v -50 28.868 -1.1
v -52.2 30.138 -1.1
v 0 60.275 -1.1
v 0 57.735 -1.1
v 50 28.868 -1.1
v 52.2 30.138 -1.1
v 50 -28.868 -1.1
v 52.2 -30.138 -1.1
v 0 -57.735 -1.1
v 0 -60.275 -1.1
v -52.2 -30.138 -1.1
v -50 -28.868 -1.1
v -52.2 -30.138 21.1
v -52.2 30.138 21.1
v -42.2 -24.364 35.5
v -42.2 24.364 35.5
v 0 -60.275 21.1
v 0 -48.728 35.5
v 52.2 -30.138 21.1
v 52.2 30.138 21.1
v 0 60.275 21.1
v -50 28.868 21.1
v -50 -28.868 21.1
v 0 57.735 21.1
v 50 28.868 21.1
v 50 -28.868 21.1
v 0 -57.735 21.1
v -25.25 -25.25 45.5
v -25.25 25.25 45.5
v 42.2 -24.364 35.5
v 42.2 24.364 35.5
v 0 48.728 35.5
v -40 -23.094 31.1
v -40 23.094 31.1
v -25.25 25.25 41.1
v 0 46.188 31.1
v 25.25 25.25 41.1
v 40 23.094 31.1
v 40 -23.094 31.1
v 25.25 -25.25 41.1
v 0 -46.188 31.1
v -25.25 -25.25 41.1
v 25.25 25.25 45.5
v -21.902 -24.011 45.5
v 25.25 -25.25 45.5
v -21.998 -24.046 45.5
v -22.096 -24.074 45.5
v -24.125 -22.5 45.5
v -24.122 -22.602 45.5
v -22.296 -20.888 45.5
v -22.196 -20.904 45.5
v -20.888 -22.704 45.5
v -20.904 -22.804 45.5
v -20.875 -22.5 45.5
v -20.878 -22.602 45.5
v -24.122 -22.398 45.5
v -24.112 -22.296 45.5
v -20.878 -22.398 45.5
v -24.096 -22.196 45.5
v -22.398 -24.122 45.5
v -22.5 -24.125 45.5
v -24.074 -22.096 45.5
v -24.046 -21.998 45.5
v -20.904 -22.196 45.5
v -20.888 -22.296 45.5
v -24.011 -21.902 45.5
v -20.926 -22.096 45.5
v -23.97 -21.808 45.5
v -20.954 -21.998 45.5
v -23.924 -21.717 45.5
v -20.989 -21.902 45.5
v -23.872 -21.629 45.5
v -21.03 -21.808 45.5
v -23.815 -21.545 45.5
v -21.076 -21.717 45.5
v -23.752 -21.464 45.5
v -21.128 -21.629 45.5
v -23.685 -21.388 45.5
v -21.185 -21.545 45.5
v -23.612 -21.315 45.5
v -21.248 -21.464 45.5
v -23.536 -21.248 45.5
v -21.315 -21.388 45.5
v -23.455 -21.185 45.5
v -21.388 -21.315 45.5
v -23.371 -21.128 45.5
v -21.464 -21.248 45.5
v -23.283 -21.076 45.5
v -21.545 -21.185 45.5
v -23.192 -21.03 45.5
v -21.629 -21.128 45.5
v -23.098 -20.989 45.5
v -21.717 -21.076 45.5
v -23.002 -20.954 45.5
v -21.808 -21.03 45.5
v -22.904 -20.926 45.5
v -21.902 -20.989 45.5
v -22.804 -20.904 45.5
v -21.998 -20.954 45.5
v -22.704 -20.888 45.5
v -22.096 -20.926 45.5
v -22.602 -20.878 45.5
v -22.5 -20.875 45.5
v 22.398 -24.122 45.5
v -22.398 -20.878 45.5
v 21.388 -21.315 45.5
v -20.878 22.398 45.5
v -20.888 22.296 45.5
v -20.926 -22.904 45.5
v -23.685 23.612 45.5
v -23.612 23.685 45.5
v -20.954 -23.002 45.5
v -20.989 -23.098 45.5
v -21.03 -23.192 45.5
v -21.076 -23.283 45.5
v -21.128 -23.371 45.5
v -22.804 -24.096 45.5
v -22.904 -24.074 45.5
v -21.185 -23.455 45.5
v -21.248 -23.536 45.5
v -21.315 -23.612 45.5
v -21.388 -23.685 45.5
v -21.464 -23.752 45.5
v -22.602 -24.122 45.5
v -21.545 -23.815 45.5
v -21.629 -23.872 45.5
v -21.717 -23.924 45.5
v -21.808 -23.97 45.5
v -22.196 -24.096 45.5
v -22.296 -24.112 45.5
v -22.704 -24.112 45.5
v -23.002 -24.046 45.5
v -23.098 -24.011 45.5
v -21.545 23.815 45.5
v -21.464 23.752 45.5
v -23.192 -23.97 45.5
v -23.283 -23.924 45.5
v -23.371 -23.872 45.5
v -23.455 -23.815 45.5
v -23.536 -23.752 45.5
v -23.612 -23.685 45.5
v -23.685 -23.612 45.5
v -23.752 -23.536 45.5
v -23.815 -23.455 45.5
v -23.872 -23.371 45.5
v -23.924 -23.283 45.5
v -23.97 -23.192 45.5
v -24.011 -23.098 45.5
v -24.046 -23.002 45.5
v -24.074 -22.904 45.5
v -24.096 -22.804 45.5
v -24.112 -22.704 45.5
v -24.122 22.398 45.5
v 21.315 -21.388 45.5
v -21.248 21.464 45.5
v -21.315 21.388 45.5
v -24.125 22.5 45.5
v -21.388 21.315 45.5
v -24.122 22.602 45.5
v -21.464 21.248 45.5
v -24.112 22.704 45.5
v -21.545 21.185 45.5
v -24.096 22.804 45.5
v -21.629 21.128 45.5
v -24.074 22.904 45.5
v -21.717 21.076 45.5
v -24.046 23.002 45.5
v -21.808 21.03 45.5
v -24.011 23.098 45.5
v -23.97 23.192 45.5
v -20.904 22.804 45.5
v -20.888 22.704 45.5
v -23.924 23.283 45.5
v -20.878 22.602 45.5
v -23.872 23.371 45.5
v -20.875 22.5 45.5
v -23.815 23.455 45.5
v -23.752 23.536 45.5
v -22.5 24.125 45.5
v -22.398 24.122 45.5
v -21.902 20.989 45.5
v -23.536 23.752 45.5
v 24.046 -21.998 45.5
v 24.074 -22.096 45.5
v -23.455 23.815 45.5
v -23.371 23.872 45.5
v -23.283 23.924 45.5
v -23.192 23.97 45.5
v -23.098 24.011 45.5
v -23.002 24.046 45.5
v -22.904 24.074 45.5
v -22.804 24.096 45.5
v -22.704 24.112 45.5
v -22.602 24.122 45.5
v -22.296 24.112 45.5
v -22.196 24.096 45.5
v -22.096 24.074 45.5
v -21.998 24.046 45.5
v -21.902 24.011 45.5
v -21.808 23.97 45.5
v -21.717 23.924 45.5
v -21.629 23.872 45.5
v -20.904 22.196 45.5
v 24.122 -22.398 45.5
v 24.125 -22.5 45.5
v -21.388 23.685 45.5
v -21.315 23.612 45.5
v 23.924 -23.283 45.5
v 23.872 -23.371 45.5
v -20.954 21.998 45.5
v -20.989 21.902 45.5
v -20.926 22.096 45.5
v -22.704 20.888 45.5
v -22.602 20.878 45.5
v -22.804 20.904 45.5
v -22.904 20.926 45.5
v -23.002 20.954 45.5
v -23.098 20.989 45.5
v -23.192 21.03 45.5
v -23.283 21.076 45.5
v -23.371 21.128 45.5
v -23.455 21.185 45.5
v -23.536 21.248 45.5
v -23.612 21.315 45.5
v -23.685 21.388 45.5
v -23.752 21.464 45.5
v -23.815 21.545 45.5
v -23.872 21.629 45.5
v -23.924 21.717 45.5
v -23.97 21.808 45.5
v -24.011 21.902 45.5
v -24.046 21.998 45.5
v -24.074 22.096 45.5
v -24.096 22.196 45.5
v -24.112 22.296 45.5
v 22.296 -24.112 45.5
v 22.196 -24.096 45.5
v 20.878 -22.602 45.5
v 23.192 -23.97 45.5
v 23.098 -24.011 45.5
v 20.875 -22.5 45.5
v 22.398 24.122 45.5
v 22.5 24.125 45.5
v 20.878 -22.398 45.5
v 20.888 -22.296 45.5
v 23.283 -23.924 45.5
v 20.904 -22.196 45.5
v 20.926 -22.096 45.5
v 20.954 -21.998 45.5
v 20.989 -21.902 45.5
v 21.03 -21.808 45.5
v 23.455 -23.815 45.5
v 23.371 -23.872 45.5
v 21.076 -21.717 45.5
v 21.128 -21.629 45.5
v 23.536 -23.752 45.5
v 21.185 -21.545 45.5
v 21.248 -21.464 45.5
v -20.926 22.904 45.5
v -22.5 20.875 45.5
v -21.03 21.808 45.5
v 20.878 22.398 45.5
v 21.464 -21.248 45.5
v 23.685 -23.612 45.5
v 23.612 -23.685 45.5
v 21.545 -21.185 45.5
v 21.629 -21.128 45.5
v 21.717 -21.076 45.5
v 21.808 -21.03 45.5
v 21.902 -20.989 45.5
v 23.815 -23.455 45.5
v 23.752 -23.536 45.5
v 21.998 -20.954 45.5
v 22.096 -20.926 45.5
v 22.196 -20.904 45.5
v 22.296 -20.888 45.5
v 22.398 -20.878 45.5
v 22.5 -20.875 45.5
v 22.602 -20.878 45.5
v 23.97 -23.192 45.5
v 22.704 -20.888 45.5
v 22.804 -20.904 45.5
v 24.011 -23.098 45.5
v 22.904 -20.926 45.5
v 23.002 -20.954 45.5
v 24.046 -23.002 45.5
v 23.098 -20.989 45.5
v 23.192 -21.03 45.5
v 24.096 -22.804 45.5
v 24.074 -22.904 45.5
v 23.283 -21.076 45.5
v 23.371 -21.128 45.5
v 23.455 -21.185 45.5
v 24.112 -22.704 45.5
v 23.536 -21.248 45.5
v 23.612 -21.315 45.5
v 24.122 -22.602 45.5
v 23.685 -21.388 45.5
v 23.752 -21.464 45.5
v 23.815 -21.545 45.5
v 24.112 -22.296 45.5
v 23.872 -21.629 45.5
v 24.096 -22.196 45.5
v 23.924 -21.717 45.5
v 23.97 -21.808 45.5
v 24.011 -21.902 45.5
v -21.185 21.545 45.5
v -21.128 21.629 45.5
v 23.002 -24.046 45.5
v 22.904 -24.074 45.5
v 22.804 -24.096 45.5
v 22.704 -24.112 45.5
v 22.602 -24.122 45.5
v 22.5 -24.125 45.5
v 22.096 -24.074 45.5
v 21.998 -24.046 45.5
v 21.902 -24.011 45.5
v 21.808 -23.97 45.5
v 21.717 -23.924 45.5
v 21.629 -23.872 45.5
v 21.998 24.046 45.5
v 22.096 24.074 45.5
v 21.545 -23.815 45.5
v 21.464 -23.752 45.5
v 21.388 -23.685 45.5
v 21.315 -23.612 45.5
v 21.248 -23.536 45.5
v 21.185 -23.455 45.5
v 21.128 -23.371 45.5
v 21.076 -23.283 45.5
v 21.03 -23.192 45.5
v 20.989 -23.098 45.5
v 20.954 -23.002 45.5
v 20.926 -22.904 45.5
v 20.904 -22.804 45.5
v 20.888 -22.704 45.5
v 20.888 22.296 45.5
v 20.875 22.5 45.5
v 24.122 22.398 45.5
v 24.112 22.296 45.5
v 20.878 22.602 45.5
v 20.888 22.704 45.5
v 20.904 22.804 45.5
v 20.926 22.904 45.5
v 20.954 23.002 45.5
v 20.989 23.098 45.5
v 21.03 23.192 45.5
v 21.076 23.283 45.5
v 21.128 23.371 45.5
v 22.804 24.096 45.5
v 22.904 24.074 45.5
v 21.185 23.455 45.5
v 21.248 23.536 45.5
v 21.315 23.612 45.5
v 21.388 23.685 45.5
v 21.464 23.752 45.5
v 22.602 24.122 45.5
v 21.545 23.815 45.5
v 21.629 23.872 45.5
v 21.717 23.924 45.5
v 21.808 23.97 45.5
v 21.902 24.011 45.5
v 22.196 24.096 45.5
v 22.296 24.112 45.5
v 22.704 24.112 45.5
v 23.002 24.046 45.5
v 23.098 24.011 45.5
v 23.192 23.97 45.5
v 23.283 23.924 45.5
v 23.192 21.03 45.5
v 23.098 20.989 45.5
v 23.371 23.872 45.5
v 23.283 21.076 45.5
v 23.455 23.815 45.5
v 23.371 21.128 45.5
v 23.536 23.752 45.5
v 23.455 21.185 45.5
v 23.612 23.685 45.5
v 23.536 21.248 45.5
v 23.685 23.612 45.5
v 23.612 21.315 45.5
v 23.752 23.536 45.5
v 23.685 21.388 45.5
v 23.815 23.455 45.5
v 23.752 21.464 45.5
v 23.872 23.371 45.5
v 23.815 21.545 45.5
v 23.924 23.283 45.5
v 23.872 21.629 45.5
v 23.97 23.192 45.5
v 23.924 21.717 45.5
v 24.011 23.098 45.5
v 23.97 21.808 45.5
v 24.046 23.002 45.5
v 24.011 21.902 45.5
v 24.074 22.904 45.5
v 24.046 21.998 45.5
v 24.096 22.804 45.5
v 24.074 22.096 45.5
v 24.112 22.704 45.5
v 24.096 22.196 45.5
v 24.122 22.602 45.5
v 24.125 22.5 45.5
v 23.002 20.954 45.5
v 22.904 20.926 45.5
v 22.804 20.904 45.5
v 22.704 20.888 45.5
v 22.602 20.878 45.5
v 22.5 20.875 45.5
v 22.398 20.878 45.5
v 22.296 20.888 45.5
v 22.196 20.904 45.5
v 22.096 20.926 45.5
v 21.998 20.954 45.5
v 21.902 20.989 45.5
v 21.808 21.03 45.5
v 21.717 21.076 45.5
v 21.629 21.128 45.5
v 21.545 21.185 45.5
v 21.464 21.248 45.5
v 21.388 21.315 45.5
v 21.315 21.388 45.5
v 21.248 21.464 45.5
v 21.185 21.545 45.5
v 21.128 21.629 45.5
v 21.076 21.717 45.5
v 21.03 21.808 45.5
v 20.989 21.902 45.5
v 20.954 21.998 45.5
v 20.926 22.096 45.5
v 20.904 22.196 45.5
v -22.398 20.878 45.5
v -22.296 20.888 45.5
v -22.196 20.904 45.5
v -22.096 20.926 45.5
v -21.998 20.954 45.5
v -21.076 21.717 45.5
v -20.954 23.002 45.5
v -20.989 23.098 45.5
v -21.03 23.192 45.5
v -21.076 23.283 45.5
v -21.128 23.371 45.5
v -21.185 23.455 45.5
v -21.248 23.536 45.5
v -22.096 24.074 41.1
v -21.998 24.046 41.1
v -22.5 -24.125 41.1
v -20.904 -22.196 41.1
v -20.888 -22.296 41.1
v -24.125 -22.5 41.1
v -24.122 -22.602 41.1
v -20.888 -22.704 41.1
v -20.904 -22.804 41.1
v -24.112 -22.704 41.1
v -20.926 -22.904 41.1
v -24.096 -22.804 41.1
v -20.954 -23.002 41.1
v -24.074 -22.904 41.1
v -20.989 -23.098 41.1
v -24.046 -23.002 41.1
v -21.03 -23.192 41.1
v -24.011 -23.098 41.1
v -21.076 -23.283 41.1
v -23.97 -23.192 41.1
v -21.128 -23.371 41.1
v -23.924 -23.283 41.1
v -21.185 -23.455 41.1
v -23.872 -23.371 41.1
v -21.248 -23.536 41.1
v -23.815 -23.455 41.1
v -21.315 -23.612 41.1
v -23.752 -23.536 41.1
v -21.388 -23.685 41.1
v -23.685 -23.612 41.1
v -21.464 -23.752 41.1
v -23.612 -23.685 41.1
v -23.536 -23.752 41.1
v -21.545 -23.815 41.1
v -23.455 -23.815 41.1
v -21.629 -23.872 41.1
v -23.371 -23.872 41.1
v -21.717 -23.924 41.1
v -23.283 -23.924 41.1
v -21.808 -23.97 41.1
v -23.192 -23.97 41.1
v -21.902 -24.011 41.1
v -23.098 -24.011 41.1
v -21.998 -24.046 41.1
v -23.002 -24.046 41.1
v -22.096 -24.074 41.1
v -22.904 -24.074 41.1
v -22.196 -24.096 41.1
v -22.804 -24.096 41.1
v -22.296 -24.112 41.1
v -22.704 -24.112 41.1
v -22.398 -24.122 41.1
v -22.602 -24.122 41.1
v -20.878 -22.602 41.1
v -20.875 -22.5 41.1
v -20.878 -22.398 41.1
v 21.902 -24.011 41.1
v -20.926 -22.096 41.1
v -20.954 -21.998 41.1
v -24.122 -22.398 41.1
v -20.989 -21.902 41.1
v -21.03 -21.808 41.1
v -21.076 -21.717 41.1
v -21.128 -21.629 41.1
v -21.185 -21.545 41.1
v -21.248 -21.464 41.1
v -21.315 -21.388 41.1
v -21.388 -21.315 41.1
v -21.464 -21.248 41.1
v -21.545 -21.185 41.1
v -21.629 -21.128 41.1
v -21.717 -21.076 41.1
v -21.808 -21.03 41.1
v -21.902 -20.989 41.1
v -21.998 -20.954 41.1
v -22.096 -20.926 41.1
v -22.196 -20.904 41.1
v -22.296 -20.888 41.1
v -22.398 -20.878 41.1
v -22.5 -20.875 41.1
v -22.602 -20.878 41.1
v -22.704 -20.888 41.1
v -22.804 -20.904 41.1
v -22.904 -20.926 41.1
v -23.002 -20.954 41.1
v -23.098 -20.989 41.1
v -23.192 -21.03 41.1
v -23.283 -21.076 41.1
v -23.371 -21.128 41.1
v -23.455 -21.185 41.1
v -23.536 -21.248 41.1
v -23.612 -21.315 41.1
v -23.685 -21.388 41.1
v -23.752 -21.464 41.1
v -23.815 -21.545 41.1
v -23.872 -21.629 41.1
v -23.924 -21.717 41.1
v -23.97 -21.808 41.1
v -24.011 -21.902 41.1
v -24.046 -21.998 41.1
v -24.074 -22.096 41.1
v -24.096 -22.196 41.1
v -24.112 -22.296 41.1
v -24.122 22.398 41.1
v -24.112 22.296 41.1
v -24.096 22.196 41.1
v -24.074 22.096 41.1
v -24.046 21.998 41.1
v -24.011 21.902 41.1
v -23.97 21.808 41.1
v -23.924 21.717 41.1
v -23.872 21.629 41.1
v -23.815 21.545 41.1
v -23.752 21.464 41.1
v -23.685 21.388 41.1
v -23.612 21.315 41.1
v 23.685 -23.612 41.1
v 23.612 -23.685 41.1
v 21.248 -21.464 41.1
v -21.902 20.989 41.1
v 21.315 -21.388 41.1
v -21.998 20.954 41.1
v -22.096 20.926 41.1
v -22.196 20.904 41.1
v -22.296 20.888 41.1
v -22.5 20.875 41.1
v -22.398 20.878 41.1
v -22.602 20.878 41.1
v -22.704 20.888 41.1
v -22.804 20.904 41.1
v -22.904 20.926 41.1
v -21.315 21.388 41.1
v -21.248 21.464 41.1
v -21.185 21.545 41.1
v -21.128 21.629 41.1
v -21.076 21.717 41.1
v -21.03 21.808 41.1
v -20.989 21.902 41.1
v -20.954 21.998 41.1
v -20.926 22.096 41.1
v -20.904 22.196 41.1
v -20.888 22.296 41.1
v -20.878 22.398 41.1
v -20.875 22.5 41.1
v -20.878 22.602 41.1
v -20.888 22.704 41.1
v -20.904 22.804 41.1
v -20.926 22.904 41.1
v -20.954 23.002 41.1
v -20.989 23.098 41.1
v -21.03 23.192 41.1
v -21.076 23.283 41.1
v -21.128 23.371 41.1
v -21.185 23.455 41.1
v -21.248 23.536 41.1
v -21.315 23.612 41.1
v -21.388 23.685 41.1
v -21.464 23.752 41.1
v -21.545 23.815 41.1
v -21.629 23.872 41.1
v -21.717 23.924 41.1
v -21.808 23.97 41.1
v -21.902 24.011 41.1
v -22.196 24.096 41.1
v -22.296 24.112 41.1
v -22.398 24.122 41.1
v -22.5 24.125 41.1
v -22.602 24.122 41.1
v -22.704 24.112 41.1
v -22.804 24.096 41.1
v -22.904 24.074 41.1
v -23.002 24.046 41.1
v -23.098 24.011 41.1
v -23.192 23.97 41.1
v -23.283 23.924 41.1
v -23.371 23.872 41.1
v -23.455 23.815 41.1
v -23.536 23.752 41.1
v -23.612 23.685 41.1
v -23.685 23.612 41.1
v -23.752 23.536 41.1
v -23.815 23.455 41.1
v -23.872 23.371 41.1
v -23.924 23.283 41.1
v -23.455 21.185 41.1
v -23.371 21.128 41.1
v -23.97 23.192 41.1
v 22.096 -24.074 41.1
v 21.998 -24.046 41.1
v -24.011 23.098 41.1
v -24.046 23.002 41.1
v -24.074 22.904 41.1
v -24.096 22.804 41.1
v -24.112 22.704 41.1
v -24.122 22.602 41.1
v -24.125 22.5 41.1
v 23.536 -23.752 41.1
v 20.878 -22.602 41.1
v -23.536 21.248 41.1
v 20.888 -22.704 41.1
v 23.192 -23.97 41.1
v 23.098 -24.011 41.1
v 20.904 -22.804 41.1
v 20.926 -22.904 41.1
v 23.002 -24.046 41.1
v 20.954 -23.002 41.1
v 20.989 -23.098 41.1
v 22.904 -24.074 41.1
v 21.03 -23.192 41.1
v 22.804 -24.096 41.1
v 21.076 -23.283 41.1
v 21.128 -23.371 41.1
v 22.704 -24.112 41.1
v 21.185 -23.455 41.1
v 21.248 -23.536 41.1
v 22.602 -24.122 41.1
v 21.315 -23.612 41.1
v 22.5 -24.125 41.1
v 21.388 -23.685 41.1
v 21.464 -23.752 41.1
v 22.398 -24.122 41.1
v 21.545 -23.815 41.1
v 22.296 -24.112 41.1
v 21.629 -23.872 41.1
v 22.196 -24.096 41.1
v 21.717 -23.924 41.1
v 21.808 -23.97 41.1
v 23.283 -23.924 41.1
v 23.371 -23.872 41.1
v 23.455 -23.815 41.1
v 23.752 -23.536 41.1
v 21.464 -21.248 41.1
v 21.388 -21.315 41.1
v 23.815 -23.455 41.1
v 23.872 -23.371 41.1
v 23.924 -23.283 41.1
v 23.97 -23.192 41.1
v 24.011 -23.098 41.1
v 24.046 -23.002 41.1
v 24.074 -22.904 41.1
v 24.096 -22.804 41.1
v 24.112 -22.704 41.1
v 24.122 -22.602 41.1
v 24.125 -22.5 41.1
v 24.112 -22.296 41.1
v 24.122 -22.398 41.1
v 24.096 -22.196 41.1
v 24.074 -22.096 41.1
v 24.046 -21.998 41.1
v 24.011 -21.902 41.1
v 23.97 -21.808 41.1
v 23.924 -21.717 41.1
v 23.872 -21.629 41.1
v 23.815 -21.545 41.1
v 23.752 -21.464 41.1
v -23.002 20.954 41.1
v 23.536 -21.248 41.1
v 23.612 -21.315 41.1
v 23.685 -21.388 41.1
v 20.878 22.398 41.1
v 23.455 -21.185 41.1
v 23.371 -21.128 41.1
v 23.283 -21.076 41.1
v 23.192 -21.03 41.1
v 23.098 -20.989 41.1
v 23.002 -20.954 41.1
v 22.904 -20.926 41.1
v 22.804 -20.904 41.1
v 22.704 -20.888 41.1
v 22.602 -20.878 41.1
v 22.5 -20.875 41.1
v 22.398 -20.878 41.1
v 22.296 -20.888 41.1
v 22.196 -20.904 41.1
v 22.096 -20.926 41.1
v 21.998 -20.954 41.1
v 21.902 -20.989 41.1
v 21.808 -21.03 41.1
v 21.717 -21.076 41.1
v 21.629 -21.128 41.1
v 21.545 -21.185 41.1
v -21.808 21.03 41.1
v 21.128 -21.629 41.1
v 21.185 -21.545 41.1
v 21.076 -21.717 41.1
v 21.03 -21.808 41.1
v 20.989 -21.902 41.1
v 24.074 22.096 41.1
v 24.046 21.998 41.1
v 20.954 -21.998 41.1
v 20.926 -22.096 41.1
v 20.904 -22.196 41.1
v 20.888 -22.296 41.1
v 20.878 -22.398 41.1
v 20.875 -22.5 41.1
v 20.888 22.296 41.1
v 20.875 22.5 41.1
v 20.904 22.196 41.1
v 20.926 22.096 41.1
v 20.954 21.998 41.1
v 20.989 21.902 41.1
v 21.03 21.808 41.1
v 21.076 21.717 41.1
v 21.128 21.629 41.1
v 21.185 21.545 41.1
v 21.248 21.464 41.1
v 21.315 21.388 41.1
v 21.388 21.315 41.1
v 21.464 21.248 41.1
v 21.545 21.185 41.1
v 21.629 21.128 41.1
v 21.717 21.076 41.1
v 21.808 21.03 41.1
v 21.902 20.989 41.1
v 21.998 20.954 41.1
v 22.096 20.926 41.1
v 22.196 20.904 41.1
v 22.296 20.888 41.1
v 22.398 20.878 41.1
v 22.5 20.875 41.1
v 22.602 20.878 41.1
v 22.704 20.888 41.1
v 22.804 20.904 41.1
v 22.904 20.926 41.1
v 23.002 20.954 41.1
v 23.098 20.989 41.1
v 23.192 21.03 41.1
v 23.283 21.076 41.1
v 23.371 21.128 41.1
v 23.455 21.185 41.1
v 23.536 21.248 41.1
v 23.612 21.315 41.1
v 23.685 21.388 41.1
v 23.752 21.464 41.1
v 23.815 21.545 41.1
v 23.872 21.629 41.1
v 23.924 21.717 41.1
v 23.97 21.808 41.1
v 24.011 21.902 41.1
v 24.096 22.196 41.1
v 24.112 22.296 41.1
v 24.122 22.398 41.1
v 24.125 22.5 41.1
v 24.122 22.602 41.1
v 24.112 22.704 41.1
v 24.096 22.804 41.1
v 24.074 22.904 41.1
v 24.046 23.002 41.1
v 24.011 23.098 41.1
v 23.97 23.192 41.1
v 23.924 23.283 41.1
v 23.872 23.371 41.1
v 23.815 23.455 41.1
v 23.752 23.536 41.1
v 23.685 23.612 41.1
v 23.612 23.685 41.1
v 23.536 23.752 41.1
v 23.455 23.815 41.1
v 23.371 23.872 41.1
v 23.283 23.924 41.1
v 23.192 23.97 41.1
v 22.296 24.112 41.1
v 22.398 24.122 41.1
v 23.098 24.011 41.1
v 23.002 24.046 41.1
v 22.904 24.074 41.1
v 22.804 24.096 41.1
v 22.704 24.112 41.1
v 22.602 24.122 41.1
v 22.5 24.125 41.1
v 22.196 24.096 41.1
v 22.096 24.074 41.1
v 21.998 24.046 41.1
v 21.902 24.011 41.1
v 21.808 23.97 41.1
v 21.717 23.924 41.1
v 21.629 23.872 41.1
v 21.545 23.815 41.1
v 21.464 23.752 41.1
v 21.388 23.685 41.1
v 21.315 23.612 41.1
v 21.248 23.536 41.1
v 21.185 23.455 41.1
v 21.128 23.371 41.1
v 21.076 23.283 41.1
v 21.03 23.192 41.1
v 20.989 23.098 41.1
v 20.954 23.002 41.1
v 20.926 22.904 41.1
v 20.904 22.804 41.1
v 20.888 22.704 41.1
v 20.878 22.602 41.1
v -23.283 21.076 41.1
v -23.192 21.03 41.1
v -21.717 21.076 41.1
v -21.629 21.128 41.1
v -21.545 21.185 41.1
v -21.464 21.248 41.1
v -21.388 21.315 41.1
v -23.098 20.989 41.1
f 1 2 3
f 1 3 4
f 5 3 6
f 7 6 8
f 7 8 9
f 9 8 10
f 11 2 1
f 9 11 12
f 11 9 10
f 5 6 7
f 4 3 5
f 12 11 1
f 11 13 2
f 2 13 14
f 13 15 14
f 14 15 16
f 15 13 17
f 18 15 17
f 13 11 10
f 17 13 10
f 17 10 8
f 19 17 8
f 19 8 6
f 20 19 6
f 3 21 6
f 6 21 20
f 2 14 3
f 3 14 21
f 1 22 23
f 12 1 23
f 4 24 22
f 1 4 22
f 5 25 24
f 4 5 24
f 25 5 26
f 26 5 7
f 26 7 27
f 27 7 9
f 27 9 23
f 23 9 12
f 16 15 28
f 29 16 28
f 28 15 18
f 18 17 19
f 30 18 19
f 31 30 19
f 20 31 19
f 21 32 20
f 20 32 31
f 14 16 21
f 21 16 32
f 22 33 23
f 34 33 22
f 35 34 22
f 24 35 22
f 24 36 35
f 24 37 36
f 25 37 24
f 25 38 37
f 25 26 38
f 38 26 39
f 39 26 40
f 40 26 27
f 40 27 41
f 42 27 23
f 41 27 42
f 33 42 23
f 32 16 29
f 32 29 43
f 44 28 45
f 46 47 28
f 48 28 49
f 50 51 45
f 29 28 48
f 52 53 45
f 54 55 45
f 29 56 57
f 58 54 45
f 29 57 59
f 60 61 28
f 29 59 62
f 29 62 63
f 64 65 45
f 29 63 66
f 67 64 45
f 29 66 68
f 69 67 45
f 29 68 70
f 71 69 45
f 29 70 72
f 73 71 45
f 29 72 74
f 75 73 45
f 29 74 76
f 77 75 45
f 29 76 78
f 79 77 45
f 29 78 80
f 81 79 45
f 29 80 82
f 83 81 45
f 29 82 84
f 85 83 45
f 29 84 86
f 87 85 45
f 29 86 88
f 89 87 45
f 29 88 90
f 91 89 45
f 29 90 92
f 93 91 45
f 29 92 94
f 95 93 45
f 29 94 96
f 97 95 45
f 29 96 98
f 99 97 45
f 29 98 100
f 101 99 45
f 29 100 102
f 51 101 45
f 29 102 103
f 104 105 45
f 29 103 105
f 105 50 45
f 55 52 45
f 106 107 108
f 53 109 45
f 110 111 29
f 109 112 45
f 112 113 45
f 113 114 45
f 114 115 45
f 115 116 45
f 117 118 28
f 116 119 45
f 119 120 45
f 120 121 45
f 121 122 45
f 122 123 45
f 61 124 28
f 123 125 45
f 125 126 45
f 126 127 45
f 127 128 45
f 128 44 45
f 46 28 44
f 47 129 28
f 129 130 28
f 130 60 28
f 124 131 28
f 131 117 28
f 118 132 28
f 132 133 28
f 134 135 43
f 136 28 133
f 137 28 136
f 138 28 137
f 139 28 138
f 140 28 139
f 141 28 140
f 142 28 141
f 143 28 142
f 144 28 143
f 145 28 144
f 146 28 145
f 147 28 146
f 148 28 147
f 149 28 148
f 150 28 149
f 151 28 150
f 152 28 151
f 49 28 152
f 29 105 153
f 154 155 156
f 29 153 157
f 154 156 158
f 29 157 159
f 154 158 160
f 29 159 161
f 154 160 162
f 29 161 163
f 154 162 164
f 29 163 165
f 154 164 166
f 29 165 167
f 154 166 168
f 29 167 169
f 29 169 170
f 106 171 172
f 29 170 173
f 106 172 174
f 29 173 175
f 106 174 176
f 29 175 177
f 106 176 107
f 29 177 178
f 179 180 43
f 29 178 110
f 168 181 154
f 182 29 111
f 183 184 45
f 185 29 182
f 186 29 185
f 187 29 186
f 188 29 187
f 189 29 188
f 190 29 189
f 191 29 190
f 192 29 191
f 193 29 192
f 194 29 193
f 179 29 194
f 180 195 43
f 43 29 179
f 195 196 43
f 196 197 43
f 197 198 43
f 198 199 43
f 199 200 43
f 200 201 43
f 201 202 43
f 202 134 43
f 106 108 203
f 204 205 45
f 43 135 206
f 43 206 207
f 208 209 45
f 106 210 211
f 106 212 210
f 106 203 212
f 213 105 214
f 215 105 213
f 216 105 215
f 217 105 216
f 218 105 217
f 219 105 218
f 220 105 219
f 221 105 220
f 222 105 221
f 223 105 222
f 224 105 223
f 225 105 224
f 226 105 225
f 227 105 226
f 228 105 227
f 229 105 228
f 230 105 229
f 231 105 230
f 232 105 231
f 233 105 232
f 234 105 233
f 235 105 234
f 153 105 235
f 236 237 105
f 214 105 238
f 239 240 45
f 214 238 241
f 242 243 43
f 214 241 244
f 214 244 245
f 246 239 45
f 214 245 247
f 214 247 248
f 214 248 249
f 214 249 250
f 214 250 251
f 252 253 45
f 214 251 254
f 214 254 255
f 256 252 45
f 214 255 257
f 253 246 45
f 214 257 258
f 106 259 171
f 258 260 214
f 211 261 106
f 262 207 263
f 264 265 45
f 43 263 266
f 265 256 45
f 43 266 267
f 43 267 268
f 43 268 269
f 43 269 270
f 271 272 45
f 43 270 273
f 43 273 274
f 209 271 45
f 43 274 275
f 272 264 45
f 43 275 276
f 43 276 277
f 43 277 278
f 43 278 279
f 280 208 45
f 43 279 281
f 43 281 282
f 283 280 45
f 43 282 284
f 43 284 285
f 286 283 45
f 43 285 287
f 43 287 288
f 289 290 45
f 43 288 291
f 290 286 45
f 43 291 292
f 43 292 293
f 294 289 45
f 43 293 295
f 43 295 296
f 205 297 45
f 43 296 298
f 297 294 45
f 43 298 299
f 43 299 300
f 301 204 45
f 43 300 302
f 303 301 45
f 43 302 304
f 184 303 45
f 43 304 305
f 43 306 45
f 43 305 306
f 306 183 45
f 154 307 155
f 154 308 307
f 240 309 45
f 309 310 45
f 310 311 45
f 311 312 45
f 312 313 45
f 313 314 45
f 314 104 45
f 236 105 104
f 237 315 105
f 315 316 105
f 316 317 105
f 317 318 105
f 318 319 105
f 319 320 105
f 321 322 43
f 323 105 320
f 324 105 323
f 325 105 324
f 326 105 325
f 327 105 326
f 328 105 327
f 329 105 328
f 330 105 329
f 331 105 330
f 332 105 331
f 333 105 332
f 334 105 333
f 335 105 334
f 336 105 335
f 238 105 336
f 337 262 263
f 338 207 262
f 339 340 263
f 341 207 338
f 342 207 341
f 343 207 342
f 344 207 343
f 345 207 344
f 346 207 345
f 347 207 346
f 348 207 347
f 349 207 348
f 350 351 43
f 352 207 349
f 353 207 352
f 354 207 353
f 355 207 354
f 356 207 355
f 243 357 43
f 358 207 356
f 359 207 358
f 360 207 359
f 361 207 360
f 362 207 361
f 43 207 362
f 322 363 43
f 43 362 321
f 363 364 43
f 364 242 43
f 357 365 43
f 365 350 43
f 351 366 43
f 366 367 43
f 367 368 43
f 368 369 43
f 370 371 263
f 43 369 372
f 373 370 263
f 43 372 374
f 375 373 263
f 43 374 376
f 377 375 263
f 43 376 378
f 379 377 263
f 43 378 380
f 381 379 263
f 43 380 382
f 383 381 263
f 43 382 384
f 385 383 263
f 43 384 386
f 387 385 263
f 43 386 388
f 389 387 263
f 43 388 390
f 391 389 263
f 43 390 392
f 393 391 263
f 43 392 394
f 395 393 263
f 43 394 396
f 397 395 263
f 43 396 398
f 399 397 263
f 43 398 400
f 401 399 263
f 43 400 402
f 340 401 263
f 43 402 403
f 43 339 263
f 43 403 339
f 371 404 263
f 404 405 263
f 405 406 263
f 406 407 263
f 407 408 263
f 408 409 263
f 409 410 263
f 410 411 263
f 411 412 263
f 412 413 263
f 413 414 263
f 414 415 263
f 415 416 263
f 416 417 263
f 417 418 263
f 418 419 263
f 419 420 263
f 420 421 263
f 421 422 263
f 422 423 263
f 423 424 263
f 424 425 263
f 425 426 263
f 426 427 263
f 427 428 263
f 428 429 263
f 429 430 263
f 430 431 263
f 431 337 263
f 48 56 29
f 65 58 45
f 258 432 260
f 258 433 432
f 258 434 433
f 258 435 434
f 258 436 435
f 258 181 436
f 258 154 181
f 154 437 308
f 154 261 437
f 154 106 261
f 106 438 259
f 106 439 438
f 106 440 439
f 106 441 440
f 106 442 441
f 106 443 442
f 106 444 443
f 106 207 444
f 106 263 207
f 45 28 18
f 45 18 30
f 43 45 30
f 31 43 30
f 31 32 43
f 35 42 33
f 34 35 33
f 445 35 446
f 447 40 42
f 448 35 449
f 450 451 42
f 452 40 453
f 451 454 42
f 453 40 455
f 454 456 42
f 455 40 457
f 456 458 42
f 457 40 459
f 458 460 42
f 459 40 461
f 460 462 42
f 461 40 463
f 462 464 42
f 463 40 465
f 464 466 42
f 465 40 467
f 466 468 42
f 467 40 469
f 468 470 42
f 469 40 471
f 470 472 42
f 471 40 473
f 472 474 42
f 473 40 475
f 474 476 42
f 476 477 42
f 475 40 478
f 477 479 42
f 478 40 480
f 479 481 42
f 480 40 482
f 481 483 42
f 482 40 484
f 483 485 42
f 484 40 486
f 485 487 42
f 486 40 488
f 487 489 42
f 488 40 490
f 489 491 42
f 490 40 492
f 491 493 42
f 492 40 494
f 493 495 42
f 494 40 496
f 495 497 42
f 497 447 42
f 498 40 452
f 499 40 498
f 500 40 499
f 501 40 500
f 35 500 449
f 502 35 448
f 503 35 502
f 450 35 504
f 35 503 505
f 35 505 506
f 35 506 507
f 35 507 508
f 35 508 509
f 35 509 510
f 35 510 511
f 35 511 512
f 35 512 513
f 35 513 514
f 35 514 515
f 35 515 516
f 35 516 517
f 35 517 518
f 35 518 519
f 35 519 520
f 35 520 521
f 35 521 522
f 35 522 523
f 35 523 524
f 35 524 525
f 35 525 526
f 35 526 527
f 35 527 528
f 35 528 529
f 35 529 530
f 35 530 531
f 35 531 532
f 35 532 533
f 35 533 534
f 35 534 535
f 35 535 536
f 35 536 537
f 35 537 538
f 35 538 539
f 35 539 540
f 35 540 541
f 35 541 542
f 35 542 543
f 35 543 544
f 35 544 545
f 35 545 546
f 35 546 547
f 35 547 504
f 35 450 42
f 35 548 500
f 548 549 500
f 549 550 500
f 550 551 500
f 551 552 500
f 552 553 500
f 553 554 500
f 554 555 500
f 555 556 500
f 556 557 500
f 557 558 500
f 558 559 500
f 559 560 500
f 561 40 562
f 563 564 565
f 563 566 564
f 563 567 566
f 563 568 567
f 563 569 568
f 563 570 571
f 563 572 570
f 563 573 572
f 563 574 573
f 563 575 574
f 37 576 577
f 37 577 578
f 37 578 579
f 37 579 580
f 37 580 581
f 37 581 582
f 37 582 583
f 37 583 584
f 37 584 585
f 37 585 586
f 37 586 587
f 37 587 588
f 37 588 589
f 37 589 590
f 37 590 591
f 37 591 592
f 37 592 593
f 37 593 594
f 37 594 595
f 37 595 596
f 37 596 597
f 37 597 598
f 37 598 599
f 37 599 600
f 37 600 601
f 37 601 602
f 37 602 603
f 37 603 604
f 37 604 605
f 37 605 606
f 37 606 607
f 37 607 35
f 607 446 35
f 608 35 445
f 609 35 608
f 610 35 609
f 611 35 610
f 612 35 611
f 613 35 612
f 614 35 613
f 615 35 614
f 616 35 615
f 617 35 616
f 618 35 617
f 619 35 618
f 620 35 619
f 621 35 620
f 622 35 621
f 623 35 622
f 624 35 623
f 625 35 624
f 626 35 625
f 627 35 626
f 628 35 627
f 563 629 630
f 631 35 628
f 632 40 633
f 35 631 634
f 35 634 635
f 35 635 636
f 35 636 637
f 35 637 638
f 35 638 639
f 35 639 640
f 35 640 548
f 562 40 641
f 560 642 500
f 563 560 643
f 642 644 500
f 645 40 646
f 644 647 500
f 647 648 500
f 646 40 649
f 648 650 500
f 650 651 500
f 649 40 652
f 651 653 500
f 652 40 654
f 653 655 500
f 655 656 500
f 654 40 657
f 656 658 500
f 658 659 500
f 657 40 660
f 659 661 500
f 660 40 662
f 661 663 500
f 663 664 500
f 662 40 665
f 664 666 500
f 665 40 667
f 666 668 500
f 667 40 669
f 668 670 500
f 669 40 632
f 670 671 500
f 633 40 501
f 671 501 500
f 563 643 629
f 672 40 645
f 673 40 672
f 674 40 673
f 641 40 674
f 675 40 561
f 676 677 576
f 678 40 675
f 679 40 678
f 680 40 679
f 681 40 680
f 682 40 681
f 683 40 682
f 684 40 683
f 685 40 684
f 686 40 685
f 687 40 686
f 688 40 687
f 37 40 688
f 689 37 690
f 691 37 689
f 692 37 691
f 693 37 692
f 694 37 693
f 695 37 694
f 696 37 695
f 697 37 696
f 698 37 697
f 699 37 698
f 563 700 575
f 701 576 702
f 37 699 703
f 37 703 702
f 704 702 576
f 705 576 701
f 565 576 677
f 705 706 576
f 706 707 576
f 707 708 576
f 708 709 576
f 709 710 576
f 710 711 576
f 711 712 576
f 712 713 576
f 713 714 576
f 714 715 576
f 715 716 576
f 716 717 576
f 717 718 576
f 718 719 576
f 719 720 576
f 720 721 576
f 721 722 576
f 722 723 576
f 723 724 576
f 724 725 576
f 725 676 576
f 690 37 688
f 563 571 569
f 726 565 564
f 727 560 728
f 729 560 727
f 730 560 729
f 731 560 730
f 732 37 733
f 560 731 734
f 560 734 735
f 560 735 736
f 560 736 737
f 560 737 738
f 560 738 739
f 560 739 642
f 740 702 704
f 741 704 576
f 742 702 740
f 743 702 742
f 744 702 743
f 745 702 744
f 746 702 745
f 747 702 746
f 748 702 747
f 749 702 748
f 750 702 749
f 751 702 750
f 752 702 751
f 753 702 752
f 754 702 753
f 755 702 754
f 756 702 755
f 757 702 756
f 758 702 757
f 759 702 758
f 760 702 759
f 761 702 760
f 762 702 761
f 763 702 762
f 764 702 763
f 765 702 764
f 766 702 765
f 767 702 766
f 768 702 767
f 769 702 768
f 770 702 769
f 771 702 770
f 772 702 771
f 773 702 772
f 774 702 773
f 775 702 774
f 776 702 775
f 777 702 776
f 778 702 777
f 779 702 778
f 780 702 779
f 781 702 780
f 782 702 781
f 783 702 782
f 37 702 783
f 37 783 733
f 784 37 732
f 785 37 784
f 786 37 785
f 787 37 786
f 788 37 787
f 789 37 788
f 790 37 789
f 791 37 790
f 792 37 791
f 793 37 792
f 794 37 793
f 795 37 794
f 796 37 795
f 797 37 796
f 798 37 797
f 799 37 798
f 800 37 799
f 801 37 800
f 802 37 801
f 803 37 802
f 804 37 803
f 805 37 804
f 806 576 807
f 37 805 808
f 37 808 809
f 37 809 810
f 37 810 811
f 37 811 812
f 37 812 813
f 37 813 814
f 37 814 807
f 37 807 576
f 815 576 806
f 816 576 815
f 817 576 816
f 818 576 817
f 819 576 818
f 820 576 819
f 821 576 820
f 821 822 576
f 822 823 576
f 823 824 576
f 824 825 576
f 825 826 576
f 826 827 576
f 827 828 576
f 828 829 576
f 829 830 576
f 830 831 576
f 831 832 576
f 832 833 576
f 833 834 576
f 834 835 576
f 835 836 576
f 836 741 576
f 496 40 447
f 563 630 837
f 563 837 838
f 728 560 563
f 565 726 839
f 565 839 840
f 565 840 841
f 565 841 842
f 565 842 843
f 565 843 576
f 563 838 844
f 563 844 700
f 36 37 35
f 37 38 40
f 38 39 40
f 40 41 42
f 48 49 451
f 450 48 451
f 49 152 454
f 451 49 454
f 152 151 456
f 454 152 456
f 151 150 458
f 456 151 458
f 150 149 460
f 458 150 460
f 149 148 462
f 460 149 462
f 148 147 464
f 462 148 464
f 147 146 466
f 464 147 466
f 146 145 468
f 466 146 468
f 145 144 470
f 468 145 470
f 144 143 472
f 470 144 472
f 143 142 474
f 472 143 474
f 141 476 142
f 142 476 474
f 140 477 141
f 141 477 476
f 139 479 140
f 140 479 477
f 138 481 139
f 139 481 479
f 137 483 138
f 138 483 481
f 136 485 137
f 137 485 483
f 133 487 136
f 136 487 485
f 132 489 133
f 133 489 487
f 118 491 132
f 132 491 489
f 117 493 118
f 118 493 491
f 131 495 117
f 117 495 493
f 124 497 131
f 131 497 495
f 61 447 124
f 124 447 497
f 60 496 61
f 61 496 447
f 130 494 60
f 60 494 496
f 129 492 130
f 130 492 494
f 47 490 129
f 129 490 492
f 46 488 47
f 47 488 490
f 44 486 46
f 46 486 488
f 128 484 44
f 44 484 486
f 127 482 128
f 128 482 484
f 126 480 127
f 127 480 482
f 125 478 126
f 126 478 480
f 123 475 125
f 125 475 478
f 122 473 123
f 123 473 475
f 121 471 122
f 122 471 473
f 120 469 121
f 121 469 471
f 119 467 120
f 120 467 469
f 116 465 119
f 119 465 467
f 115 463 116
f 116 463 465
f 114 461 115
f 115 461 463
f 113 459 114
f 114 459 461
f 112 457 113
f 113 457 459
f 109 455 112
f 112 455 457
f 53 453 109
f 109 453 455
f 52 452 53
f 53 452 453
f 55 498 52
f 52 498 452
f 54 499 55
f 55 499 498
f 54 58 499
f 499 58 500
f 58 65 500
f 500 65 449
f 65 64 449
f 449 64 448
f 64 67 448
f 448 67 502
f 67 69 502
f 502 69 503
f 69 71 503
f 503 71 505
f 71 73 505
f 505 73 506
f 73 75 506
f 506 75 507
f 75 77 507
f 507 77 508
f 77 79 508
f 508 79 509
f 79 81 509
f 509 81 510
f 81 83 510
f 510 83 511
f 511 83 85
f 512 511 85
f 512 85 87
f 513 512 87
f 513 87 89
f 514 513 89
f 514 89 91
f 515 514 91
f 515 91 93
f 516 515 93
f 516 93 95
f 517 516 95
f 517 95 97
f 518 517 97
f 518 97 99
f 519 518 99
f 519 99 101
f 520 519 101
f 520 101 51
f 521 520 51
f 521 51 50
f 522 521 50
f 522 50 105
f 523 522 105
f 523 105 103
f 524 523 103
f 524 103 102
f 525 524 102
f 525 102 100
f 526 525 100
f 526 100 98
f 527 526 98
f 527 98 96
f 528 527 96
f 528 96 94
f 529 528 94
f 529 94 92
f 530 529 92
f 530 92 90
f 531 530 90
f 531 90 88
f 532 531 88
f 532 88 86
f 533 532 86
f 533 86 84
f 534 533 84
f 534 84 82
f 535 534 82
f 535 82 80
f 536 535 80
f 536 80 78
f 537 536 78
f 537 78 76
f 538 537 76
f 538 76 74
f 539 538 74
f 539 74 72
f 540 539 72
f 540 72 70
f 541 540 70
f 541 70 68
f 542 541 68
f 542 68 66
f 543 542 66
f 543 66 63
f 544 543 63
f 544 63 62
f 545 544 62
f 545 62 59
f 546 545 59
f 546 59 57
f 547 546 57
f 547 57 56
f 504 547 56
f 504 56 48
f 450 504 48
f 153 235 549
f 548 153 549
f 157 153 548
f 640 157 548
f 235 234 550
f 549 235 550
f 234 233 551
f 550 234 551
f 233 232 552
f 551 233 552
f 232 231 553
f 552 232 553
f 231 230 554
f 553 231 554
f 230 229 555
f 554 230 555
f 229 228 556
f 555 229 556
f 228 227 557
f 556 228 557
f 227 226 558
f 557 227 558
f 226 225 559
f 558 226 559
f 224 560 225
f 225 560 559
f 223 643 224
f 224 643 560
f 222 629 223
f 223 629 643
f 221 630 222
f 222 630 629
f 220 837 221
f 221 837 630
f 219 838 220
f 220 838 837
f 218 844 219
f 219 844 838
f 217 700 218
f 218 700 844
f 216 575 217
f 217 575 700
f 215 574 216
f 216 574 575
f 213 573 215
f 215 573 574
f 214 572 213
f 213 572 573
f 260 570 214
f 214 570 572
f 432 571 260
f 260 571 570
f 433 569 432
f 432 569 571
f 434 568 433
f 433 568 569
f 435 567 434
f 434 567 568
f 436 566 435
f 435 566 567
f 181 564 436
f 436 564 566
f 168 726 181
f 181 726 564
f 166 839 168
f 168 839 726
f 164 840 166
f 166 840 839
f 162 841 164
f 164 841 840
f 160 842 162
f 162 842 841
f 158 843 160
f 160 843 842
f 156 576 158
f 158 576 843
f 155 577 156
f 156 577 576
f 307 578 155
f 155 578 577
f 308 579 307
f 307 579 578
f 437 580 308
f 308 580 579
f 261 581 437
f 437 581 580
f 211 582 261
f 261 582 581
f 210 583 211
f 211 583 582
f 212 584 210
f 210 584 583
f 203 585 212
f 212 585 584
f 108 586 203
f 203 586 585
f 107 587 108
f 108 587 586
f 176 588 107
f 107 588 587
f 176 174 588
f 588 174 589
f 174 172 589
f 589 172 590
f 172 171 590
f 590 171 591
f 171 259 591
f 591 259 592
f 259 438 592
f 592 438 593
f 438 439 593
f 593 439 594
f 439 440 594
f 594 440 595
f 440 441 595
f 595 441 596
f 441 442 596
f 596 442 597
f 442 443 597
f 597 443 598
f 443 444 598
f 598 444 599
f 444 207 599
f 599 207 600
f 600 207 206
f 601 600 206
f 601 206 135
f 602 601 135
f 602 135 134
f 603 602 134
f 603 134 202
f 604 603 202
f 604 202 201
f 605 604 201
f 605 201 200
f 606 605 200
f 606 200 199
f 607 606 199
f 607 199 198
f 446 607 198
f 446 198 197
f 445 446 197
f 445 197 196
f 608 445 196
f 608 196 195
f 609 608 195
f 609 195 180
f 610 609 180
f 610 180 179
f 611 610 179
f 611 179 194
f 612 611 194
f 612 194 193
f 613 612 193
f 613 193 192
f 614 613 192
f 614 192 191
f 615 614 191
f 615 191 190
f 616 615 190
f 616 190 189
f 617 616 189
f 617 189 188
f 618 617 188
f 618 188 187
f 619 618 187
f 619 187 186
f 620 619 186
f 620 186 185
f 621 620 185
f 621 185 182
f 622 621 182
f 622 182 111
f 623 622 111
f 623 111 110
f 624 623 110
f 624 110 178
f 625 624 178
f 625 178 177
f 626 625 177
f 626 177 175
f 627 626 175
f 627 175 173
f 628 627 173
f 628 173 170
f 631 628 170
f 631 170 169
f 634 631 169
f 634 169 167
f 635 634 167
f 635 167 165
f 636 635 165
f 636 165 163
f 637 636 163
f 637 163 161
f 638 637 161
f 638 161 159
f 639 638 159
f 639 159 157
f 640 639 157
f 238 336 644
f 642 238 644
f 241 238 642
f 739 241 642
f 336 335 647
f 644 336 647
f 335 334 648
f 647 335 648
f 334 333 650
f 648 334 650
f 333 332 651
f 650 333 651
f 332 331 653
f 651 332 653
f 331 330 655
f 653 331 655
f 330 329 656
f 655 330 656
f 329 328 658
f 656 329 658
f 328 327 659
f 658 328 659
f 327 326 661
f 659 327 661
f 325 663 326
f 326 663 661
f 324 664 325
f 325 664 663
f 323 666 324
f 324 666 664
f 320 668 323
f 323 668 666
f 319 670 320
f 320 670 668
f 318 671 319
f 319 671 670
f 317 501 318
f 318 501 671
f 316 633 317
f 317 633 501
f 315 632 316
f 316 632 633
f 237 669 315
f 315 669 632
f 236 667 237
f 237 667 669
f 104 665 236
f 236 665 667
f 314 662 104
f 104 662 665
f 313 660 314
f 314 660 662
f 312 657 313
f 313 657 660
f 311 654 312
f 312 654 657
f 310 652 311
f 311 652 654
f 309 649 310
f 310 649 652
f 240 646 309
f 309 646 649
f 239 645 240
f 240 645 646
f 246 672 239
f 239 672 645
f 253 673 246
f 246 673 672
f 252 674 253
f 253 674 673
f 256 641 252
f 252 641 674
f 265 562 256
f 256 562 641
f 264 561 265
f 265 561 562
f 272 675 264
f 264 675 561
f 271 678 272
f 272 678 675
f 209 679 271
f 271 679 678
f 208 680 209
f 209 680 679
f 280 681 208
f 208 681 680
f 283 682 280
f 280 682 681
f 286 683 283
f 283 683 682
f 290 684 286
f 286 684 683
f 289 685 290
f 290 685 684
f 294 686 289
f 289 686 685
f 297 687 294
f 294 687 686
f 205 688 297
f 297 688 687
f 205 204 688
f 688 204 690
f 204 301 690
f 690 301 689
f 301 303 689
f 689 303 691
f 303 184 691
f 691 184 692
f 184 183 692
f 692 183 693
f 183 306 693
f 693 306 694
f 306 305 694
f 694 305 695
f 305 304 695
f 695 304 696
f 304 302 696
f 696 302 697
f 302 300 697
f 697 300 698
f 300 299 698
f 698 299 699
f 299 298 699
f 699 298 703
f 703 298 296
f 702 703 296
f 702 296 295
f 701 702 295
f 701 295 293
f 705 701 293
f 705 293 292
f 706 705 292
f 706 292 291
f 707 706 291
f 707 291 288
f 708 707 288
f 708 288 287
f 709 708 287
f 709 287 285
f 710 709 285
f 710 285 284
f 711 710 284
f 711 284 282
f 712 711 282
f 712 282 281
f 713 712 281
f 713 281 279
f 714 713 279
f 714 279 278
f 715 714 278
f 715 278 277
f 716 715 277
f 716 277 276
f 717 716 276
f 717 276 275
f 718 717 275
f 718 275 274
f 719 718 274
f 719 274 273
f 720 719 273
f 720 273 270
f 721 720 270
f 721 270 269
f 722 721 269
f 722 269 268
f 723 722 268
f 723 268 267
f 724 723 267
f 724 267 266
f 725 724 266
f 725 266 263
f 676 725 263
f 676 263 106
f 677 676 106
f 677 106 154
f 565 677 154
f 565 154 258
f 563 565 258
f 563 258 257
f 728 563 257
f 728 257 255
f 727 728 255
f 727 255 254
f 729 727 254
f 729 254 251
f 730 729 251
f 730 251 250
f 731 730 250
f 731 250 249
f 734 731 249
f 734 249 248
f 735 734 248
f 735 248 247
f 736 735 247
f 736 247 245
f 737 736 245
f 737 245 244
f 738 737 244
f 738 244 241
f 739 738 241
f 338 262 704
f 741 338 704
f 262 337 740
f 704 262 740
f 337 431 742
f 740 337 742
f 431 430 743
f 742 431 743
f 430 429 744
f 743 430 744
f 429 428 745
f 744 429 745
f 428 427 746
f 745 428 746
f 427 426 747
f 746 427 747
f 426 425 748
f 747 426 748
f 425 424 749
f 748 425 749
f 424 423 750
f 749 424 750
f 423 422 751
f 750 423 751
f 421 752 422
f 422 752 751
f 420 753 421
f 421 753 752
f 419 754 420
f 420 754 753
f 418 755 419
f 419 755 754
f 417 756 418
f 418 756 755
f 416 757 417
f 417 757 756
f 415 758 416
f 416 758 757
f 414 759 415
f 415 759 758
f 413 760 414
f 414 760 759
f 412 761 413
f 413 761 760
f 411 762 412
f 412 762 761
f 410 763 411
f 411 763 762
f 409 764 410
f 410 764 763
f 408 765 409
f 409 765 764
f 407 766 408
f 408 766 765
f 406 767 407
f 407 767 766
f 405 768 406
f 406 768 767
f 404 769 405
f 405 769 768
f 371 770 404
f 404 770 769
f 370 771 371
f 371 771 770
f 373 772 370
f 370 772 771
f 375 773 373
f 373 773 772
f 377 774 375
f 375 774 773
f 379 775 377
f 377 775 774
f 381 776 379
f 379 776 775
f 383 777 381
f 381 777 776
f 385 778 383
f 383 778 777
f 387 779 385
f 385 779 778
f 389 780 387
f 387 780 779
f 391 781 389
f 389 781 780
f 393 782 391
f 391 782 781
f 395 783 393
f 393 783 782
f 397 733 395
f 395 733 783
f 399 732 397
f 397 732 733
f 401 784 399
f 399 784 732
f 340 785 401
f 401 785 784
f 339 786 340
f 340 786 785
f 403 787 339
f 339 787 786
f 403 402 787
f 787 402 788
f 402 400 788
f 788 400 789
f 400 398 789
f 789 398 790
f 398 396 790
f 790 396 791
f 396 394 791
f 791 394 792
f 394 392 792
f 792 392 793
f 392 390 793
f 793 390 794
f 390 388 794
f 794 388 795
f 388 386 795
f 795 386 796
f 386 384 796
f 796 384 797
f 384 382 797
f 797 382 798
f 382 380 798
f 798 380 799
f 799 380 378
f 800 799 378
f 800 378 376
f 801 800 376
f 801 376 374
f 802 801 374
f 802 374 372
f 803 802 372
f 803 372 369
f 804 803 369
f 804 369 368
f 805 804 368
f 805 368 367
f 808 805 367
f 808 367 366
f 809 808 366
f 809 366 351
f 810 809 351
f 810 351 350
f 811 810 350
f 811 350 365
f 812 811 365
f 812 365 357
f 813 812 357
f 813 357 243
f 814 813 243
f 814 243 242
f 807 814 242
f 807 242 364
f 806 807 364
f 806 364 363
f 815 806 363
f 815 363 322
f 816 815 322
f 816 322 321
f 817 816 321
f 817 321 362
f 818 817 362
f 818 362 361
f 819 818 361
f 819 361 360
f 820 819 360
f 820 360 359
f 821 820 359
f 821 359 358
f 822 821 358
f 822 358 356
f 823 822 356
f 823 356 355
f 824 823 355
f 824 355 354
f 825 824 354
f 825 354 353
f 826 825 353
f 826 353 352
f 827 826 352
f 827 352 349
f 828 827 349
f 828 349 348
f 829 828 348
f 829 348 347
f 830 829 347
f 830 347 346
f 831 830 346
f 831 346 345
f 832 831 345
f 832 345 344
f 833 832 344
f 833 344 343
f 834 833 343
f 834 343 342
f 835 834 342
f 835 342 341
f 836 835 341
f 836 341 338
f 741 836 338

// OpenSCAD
height = 28;
od = 14;
id = 9.6;
screwd = 1.3;
screwo = 9.4;
thickness = 2.2;
diameter=100;
$fn = 100;

gpssp = 45;
gpsmd = 3.25;
gpsw = 50.5;
apmw = 46;
apml = 72;
apmh = 14;

difference(){
	hull(){
		translate([0,0,40+(2*thickness)])
			cube([gpsw,gpsw,thickness], center=true);


		translate([0,0,30+(2*thickness)])
			hexagon(cle=diameter-20+(2*thickness), h=thickness);

		translate([0,0,20])
			hexagon(cle=diameter+(2*thickness), h=thickness);
	
		hexagon(cle=diameter+(2*thickness), h=thickness);
	}

	translate([0,0,40+thickness]){
		translate([45/2,45/2,0])
			cylinder(h=thickness*10, r=gpsmd/2, center=true);
		translate([-45/2,-45/2,0])
			cylinder(h=thickness*10, r=gpsmd/2, center=true);
		translate([-45/2,45/2,0])
			cylinder(h=thickness*10, r=gpsmd/2, center=true);
		translate([45/2,-45/2,0])
			cylinder(h=thickness*10, r=gpsmd/2, center=true);
	}

	hull(){
		translate([0,0,40])
			cube([gpsw,gpsw,thickness], center=true);

		translate([0,0,30])
				hexagon(cle=diameter-20, h=thickness);

		translate([0,0,20])
			hexagon(cle=diameter, h=thickness);
	
		hexagon(cle=diameter, h=thickness);
	}
}

module hexagon(cle,h)
{
	angle = 360/6;		// 6 pans
	cote = cle * cot(angle);
	echo(angle, cot(angle), cote);
	echo(acos(.6));

	union()
	{
		for( i=[0,angle,2*angle] ){
		rotate([0,0,i])
			cube([cle,cote,h],center=true);
		}
	}
}
function cot(x)=1/tan(x);
